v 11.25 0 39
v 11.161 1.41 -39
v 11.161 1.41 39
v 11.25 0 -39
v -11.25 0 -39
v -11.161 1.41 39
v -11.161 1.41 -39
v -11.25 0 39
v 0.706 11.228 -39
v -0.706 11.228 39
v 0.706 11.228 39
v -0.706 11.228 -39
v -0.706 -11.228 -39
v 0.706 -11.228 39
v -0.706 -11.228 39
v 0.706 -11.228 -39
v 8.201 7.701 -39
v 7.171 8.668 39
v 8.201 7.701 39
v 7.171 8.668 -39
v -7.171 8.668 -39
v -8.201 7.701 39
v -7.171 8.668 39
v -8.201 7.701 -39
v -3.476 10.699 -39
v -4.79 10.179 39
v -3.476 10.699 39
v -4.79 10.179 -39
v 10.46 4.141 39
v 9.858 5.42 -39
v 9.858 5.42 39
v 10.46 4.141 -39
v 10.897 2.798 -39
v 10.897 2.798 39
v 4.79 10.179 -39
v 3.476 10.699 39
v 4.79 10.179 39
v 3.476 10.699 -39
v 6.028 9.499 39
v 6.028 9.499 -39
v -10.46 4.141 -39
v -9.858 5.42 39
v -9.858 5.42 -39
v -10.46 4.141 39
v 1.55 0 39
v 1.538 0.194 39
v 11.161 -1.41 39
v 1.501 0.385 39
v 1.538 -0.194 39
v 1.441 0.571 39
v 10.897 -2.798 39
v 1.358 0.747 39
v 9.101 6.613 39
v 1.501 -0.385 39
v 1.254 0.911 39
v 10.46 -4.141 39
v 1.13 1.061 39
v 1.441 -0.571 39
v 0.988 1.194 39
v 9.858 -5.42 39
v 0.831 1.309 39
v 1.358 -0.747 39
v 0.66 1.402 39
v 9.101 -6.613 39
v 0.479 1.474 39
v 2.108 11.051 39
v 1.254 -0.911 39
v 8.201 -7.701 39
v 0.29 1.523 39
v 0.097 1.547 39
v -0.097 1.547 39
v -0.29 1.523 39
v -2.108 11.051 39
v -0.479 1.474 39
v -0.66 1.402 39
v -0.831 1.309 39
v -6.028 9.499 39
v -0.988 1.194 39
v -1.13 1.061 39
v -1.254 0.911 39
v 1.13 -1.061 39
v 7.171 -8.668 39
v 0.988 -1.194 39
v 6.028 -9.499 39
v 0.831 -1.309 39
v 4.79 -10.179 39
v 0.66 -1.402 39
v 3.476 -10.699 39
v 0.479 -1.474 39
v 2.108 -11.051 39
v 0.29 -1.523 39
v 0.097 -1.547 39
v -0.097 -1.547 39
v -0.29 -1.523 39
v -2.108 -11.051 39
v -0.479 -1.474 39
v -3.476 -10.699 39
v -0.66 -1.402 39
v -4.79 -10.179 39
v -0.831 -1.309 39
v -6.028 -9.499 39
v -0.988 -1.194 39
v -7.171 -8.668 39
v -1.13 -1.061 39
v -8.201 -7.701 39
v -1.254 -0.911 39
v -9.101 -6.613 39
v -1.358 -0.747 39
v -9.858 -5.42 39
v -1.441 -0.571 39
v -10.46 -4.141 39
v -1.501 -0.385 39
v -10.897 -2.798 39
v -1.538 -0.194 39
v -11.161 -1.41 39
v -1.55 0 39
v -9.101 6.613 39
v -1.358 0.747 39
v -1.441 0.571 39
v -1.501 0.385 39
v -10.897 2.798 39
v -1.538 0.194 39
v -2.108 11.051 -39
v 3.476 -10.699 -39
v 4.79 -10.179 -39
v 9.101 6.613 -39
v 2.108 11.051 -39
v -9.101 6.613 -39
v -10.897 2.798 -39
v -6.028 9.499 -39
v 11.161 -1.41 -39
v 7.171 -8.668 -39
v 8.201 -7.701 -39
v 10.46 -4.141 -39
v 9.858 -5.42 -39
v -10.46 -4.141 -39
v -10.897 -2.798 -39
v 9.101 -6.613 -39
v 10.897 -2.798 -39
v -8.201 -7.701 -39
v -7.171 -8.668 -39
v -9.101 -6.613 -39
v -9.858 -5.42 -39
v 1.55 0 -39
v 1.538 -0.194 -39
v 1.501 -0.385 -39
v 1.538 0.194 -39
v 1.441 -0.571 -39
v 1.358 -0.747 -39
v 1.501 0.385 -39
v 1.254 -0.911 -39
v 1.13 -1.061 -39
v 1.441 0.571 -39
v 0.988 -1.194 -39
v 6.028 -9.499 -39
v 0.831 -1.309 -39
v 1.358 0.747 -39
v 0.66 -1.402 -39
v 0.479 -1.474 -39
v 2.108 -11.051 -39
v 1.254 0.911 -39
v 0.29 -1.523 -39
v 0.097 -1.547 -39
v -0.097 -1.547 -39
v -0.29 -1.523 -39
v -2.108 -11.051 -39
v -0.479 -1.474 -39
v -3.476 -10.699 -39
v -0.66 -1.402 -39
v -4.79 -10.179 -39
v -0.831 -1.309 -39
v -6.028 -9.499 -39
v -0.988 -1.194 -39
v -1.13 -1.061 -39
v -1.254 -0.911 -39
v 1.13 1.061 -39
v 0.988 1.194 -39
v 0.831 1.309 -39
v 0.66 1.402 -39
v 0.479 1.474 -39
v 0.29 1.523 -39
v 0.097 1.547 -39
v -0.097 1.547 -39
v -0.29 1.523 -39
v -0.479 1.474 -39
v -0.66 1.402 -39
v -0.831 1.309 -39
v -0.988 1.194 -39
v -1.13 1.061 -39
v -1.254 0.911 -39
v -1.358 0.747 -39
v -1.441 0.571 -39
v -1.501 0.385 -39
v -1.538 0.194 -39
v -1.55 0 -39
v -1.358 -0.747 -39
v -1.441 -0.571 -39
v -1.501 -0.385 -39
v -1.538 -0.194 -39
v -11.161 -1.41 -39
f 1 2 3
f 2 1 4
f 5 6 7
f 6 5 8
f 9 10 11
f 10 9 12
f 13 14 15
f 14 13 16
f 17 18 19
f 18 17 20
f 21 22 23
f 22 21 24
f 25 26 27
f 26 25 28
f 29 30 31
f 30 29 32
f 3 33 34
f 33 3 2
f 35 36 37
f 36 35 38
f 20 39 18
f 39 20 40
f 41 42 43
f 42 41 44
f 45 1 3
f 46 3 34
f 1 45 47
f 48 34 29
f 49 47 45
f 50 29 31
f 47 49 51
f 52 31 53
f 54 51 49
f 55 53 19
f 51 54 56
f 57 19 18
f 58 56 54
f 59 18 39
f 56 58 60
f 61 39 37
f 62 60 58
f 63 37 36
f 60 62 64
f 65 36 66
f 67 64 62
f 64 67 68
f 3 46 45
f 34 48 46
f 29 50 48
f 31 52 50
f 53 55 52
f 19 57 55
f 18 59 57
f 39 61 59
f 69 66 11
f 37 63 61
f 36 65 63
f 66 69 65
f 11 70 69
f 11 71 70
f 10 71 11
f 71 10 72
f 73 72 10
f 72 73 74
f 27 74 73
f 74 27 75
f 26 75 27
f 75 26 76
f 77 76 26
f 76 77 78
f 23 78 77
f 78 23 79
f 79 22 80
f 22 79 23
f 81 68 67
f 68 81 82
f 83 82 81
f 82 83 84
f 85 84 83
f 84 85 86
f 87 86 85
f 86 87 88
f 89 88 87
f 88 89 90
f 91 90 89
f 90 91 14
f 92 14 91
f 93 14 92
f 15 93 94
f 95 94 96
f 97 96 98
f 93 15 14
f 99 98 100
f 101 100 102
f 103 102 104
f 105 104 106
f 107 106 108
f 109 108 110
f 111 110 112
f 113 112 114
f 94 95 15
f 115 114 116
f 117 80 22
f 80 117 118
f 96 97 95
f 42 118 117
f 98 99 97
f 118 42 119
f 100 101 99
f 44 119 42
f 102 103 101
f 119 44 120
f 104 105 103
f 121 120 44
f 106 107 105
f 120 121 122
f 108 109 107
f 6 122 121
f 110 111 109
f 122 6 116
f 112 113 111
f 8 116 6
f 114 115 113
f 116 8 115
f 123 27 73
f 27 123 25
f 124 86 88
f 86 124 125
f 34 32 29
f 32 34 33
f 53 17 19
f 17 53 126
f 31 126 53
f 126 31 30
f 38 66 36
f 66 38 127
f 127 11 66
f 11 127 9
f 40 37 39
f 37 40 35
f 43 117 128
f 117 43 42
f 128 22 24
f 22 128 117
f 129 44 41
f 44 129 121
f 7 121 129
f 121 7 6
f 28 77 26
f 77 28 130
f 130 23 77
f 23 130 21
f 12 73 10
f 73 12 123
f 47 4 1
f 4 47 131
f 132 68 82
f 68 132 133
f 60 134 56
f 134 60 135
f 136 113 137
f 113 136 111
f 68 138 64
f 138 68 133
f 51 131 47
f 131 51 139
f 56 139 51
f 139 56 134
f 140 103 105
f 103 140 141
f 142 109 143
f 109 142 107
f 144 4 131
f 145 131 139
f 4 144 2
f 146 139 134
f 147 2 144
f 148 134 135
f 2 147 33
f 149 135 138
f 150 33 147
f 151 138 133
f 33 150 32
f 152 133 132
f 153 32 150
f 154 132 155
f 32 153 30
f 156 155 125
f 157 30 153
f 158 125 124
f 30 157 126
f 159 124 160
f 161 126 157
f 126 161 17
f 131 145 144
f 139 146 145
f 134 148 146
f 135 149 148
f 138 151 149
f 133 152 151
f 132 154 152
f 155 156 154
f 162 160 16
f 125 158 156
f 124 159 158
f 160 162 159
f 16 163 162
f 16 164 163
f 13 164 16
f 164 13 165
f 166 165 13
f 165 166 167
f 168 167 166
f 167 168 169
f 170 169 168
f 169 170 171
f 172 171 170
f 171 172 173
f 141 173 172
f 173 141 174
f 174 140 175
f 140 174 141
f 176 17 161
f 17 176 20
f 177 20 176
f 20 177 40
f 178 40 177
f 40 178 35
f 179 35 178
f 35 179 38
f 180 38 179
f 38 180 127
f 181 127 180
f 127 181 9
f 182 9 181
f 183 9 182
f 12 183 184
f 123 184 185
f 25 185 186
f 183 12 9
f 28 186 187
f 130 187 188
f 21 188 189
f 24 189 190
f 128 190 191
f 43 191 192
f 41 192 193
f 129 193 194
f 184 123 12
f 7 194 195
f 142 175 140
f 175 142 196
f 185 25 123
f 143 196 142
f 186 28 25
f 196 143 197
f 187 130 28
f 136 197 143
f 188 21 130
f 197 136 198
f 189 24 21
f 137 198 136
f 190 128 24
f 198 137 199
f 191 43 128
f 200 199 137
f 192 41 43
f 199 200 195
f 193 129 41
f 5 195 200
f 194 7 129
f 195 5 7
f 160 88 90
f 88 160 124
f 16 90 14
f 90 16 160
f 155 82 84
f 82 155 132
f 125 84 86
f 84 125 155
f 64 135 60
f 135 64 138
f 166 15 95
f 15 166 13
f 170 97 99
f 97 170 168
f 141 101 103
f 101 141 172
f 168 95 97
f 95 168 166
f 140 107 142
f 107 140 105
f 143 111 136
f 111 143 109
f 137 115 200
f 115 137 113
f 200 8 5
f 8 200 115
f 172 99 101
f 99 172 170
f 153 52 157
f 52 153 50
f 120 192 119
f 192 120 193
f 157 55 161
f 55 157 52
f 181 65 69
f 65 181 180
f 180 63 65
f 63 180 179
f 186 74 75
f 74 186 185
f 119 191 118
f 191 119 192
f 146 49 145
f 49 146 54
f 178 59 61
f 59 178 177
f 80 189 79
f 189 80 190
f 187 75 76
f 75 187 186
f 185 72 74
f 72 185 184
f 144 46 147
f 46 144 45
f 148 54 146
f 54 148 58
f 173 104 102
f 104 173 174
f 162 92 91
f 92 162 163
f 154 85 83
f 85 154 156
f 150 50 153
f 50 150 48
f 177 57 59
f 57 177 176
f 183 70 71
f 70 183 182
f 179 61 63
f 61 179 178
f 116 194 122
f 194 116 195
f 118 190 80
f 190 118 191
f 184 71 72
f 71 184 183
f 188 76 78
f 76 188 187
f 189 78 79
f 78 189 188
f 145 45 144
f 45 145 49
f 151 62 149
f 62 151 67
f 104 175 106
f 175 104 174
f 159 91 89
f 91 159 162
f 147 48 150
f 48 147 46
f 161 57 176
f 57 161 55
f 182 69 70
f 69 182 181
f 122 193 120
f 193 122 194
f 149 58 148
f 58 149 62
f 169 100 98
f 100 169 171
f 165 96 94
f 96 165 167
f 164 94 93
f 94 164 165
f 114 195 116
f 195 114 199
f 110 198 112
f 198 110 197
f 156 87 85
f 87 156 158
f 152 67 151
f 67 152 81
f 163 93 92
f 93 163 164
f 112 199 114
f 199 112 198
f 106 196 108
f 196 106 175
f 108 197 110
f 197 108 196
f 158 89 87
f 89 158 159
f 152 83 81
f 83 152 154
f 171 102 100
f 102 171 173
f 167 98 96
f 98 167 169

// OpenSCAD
$fn = 50;


difference() {
	union() {
		translate(v = [0, 0, -39.0000000000]) {
			cylinder(h = 78, r = 11.2500000000);
		}
	}
	union() {
		translate(v = [0, 0, -100.0000000000]) {
			cylinder(h = 200, r = 1.5500000000);
		}
	}
}
